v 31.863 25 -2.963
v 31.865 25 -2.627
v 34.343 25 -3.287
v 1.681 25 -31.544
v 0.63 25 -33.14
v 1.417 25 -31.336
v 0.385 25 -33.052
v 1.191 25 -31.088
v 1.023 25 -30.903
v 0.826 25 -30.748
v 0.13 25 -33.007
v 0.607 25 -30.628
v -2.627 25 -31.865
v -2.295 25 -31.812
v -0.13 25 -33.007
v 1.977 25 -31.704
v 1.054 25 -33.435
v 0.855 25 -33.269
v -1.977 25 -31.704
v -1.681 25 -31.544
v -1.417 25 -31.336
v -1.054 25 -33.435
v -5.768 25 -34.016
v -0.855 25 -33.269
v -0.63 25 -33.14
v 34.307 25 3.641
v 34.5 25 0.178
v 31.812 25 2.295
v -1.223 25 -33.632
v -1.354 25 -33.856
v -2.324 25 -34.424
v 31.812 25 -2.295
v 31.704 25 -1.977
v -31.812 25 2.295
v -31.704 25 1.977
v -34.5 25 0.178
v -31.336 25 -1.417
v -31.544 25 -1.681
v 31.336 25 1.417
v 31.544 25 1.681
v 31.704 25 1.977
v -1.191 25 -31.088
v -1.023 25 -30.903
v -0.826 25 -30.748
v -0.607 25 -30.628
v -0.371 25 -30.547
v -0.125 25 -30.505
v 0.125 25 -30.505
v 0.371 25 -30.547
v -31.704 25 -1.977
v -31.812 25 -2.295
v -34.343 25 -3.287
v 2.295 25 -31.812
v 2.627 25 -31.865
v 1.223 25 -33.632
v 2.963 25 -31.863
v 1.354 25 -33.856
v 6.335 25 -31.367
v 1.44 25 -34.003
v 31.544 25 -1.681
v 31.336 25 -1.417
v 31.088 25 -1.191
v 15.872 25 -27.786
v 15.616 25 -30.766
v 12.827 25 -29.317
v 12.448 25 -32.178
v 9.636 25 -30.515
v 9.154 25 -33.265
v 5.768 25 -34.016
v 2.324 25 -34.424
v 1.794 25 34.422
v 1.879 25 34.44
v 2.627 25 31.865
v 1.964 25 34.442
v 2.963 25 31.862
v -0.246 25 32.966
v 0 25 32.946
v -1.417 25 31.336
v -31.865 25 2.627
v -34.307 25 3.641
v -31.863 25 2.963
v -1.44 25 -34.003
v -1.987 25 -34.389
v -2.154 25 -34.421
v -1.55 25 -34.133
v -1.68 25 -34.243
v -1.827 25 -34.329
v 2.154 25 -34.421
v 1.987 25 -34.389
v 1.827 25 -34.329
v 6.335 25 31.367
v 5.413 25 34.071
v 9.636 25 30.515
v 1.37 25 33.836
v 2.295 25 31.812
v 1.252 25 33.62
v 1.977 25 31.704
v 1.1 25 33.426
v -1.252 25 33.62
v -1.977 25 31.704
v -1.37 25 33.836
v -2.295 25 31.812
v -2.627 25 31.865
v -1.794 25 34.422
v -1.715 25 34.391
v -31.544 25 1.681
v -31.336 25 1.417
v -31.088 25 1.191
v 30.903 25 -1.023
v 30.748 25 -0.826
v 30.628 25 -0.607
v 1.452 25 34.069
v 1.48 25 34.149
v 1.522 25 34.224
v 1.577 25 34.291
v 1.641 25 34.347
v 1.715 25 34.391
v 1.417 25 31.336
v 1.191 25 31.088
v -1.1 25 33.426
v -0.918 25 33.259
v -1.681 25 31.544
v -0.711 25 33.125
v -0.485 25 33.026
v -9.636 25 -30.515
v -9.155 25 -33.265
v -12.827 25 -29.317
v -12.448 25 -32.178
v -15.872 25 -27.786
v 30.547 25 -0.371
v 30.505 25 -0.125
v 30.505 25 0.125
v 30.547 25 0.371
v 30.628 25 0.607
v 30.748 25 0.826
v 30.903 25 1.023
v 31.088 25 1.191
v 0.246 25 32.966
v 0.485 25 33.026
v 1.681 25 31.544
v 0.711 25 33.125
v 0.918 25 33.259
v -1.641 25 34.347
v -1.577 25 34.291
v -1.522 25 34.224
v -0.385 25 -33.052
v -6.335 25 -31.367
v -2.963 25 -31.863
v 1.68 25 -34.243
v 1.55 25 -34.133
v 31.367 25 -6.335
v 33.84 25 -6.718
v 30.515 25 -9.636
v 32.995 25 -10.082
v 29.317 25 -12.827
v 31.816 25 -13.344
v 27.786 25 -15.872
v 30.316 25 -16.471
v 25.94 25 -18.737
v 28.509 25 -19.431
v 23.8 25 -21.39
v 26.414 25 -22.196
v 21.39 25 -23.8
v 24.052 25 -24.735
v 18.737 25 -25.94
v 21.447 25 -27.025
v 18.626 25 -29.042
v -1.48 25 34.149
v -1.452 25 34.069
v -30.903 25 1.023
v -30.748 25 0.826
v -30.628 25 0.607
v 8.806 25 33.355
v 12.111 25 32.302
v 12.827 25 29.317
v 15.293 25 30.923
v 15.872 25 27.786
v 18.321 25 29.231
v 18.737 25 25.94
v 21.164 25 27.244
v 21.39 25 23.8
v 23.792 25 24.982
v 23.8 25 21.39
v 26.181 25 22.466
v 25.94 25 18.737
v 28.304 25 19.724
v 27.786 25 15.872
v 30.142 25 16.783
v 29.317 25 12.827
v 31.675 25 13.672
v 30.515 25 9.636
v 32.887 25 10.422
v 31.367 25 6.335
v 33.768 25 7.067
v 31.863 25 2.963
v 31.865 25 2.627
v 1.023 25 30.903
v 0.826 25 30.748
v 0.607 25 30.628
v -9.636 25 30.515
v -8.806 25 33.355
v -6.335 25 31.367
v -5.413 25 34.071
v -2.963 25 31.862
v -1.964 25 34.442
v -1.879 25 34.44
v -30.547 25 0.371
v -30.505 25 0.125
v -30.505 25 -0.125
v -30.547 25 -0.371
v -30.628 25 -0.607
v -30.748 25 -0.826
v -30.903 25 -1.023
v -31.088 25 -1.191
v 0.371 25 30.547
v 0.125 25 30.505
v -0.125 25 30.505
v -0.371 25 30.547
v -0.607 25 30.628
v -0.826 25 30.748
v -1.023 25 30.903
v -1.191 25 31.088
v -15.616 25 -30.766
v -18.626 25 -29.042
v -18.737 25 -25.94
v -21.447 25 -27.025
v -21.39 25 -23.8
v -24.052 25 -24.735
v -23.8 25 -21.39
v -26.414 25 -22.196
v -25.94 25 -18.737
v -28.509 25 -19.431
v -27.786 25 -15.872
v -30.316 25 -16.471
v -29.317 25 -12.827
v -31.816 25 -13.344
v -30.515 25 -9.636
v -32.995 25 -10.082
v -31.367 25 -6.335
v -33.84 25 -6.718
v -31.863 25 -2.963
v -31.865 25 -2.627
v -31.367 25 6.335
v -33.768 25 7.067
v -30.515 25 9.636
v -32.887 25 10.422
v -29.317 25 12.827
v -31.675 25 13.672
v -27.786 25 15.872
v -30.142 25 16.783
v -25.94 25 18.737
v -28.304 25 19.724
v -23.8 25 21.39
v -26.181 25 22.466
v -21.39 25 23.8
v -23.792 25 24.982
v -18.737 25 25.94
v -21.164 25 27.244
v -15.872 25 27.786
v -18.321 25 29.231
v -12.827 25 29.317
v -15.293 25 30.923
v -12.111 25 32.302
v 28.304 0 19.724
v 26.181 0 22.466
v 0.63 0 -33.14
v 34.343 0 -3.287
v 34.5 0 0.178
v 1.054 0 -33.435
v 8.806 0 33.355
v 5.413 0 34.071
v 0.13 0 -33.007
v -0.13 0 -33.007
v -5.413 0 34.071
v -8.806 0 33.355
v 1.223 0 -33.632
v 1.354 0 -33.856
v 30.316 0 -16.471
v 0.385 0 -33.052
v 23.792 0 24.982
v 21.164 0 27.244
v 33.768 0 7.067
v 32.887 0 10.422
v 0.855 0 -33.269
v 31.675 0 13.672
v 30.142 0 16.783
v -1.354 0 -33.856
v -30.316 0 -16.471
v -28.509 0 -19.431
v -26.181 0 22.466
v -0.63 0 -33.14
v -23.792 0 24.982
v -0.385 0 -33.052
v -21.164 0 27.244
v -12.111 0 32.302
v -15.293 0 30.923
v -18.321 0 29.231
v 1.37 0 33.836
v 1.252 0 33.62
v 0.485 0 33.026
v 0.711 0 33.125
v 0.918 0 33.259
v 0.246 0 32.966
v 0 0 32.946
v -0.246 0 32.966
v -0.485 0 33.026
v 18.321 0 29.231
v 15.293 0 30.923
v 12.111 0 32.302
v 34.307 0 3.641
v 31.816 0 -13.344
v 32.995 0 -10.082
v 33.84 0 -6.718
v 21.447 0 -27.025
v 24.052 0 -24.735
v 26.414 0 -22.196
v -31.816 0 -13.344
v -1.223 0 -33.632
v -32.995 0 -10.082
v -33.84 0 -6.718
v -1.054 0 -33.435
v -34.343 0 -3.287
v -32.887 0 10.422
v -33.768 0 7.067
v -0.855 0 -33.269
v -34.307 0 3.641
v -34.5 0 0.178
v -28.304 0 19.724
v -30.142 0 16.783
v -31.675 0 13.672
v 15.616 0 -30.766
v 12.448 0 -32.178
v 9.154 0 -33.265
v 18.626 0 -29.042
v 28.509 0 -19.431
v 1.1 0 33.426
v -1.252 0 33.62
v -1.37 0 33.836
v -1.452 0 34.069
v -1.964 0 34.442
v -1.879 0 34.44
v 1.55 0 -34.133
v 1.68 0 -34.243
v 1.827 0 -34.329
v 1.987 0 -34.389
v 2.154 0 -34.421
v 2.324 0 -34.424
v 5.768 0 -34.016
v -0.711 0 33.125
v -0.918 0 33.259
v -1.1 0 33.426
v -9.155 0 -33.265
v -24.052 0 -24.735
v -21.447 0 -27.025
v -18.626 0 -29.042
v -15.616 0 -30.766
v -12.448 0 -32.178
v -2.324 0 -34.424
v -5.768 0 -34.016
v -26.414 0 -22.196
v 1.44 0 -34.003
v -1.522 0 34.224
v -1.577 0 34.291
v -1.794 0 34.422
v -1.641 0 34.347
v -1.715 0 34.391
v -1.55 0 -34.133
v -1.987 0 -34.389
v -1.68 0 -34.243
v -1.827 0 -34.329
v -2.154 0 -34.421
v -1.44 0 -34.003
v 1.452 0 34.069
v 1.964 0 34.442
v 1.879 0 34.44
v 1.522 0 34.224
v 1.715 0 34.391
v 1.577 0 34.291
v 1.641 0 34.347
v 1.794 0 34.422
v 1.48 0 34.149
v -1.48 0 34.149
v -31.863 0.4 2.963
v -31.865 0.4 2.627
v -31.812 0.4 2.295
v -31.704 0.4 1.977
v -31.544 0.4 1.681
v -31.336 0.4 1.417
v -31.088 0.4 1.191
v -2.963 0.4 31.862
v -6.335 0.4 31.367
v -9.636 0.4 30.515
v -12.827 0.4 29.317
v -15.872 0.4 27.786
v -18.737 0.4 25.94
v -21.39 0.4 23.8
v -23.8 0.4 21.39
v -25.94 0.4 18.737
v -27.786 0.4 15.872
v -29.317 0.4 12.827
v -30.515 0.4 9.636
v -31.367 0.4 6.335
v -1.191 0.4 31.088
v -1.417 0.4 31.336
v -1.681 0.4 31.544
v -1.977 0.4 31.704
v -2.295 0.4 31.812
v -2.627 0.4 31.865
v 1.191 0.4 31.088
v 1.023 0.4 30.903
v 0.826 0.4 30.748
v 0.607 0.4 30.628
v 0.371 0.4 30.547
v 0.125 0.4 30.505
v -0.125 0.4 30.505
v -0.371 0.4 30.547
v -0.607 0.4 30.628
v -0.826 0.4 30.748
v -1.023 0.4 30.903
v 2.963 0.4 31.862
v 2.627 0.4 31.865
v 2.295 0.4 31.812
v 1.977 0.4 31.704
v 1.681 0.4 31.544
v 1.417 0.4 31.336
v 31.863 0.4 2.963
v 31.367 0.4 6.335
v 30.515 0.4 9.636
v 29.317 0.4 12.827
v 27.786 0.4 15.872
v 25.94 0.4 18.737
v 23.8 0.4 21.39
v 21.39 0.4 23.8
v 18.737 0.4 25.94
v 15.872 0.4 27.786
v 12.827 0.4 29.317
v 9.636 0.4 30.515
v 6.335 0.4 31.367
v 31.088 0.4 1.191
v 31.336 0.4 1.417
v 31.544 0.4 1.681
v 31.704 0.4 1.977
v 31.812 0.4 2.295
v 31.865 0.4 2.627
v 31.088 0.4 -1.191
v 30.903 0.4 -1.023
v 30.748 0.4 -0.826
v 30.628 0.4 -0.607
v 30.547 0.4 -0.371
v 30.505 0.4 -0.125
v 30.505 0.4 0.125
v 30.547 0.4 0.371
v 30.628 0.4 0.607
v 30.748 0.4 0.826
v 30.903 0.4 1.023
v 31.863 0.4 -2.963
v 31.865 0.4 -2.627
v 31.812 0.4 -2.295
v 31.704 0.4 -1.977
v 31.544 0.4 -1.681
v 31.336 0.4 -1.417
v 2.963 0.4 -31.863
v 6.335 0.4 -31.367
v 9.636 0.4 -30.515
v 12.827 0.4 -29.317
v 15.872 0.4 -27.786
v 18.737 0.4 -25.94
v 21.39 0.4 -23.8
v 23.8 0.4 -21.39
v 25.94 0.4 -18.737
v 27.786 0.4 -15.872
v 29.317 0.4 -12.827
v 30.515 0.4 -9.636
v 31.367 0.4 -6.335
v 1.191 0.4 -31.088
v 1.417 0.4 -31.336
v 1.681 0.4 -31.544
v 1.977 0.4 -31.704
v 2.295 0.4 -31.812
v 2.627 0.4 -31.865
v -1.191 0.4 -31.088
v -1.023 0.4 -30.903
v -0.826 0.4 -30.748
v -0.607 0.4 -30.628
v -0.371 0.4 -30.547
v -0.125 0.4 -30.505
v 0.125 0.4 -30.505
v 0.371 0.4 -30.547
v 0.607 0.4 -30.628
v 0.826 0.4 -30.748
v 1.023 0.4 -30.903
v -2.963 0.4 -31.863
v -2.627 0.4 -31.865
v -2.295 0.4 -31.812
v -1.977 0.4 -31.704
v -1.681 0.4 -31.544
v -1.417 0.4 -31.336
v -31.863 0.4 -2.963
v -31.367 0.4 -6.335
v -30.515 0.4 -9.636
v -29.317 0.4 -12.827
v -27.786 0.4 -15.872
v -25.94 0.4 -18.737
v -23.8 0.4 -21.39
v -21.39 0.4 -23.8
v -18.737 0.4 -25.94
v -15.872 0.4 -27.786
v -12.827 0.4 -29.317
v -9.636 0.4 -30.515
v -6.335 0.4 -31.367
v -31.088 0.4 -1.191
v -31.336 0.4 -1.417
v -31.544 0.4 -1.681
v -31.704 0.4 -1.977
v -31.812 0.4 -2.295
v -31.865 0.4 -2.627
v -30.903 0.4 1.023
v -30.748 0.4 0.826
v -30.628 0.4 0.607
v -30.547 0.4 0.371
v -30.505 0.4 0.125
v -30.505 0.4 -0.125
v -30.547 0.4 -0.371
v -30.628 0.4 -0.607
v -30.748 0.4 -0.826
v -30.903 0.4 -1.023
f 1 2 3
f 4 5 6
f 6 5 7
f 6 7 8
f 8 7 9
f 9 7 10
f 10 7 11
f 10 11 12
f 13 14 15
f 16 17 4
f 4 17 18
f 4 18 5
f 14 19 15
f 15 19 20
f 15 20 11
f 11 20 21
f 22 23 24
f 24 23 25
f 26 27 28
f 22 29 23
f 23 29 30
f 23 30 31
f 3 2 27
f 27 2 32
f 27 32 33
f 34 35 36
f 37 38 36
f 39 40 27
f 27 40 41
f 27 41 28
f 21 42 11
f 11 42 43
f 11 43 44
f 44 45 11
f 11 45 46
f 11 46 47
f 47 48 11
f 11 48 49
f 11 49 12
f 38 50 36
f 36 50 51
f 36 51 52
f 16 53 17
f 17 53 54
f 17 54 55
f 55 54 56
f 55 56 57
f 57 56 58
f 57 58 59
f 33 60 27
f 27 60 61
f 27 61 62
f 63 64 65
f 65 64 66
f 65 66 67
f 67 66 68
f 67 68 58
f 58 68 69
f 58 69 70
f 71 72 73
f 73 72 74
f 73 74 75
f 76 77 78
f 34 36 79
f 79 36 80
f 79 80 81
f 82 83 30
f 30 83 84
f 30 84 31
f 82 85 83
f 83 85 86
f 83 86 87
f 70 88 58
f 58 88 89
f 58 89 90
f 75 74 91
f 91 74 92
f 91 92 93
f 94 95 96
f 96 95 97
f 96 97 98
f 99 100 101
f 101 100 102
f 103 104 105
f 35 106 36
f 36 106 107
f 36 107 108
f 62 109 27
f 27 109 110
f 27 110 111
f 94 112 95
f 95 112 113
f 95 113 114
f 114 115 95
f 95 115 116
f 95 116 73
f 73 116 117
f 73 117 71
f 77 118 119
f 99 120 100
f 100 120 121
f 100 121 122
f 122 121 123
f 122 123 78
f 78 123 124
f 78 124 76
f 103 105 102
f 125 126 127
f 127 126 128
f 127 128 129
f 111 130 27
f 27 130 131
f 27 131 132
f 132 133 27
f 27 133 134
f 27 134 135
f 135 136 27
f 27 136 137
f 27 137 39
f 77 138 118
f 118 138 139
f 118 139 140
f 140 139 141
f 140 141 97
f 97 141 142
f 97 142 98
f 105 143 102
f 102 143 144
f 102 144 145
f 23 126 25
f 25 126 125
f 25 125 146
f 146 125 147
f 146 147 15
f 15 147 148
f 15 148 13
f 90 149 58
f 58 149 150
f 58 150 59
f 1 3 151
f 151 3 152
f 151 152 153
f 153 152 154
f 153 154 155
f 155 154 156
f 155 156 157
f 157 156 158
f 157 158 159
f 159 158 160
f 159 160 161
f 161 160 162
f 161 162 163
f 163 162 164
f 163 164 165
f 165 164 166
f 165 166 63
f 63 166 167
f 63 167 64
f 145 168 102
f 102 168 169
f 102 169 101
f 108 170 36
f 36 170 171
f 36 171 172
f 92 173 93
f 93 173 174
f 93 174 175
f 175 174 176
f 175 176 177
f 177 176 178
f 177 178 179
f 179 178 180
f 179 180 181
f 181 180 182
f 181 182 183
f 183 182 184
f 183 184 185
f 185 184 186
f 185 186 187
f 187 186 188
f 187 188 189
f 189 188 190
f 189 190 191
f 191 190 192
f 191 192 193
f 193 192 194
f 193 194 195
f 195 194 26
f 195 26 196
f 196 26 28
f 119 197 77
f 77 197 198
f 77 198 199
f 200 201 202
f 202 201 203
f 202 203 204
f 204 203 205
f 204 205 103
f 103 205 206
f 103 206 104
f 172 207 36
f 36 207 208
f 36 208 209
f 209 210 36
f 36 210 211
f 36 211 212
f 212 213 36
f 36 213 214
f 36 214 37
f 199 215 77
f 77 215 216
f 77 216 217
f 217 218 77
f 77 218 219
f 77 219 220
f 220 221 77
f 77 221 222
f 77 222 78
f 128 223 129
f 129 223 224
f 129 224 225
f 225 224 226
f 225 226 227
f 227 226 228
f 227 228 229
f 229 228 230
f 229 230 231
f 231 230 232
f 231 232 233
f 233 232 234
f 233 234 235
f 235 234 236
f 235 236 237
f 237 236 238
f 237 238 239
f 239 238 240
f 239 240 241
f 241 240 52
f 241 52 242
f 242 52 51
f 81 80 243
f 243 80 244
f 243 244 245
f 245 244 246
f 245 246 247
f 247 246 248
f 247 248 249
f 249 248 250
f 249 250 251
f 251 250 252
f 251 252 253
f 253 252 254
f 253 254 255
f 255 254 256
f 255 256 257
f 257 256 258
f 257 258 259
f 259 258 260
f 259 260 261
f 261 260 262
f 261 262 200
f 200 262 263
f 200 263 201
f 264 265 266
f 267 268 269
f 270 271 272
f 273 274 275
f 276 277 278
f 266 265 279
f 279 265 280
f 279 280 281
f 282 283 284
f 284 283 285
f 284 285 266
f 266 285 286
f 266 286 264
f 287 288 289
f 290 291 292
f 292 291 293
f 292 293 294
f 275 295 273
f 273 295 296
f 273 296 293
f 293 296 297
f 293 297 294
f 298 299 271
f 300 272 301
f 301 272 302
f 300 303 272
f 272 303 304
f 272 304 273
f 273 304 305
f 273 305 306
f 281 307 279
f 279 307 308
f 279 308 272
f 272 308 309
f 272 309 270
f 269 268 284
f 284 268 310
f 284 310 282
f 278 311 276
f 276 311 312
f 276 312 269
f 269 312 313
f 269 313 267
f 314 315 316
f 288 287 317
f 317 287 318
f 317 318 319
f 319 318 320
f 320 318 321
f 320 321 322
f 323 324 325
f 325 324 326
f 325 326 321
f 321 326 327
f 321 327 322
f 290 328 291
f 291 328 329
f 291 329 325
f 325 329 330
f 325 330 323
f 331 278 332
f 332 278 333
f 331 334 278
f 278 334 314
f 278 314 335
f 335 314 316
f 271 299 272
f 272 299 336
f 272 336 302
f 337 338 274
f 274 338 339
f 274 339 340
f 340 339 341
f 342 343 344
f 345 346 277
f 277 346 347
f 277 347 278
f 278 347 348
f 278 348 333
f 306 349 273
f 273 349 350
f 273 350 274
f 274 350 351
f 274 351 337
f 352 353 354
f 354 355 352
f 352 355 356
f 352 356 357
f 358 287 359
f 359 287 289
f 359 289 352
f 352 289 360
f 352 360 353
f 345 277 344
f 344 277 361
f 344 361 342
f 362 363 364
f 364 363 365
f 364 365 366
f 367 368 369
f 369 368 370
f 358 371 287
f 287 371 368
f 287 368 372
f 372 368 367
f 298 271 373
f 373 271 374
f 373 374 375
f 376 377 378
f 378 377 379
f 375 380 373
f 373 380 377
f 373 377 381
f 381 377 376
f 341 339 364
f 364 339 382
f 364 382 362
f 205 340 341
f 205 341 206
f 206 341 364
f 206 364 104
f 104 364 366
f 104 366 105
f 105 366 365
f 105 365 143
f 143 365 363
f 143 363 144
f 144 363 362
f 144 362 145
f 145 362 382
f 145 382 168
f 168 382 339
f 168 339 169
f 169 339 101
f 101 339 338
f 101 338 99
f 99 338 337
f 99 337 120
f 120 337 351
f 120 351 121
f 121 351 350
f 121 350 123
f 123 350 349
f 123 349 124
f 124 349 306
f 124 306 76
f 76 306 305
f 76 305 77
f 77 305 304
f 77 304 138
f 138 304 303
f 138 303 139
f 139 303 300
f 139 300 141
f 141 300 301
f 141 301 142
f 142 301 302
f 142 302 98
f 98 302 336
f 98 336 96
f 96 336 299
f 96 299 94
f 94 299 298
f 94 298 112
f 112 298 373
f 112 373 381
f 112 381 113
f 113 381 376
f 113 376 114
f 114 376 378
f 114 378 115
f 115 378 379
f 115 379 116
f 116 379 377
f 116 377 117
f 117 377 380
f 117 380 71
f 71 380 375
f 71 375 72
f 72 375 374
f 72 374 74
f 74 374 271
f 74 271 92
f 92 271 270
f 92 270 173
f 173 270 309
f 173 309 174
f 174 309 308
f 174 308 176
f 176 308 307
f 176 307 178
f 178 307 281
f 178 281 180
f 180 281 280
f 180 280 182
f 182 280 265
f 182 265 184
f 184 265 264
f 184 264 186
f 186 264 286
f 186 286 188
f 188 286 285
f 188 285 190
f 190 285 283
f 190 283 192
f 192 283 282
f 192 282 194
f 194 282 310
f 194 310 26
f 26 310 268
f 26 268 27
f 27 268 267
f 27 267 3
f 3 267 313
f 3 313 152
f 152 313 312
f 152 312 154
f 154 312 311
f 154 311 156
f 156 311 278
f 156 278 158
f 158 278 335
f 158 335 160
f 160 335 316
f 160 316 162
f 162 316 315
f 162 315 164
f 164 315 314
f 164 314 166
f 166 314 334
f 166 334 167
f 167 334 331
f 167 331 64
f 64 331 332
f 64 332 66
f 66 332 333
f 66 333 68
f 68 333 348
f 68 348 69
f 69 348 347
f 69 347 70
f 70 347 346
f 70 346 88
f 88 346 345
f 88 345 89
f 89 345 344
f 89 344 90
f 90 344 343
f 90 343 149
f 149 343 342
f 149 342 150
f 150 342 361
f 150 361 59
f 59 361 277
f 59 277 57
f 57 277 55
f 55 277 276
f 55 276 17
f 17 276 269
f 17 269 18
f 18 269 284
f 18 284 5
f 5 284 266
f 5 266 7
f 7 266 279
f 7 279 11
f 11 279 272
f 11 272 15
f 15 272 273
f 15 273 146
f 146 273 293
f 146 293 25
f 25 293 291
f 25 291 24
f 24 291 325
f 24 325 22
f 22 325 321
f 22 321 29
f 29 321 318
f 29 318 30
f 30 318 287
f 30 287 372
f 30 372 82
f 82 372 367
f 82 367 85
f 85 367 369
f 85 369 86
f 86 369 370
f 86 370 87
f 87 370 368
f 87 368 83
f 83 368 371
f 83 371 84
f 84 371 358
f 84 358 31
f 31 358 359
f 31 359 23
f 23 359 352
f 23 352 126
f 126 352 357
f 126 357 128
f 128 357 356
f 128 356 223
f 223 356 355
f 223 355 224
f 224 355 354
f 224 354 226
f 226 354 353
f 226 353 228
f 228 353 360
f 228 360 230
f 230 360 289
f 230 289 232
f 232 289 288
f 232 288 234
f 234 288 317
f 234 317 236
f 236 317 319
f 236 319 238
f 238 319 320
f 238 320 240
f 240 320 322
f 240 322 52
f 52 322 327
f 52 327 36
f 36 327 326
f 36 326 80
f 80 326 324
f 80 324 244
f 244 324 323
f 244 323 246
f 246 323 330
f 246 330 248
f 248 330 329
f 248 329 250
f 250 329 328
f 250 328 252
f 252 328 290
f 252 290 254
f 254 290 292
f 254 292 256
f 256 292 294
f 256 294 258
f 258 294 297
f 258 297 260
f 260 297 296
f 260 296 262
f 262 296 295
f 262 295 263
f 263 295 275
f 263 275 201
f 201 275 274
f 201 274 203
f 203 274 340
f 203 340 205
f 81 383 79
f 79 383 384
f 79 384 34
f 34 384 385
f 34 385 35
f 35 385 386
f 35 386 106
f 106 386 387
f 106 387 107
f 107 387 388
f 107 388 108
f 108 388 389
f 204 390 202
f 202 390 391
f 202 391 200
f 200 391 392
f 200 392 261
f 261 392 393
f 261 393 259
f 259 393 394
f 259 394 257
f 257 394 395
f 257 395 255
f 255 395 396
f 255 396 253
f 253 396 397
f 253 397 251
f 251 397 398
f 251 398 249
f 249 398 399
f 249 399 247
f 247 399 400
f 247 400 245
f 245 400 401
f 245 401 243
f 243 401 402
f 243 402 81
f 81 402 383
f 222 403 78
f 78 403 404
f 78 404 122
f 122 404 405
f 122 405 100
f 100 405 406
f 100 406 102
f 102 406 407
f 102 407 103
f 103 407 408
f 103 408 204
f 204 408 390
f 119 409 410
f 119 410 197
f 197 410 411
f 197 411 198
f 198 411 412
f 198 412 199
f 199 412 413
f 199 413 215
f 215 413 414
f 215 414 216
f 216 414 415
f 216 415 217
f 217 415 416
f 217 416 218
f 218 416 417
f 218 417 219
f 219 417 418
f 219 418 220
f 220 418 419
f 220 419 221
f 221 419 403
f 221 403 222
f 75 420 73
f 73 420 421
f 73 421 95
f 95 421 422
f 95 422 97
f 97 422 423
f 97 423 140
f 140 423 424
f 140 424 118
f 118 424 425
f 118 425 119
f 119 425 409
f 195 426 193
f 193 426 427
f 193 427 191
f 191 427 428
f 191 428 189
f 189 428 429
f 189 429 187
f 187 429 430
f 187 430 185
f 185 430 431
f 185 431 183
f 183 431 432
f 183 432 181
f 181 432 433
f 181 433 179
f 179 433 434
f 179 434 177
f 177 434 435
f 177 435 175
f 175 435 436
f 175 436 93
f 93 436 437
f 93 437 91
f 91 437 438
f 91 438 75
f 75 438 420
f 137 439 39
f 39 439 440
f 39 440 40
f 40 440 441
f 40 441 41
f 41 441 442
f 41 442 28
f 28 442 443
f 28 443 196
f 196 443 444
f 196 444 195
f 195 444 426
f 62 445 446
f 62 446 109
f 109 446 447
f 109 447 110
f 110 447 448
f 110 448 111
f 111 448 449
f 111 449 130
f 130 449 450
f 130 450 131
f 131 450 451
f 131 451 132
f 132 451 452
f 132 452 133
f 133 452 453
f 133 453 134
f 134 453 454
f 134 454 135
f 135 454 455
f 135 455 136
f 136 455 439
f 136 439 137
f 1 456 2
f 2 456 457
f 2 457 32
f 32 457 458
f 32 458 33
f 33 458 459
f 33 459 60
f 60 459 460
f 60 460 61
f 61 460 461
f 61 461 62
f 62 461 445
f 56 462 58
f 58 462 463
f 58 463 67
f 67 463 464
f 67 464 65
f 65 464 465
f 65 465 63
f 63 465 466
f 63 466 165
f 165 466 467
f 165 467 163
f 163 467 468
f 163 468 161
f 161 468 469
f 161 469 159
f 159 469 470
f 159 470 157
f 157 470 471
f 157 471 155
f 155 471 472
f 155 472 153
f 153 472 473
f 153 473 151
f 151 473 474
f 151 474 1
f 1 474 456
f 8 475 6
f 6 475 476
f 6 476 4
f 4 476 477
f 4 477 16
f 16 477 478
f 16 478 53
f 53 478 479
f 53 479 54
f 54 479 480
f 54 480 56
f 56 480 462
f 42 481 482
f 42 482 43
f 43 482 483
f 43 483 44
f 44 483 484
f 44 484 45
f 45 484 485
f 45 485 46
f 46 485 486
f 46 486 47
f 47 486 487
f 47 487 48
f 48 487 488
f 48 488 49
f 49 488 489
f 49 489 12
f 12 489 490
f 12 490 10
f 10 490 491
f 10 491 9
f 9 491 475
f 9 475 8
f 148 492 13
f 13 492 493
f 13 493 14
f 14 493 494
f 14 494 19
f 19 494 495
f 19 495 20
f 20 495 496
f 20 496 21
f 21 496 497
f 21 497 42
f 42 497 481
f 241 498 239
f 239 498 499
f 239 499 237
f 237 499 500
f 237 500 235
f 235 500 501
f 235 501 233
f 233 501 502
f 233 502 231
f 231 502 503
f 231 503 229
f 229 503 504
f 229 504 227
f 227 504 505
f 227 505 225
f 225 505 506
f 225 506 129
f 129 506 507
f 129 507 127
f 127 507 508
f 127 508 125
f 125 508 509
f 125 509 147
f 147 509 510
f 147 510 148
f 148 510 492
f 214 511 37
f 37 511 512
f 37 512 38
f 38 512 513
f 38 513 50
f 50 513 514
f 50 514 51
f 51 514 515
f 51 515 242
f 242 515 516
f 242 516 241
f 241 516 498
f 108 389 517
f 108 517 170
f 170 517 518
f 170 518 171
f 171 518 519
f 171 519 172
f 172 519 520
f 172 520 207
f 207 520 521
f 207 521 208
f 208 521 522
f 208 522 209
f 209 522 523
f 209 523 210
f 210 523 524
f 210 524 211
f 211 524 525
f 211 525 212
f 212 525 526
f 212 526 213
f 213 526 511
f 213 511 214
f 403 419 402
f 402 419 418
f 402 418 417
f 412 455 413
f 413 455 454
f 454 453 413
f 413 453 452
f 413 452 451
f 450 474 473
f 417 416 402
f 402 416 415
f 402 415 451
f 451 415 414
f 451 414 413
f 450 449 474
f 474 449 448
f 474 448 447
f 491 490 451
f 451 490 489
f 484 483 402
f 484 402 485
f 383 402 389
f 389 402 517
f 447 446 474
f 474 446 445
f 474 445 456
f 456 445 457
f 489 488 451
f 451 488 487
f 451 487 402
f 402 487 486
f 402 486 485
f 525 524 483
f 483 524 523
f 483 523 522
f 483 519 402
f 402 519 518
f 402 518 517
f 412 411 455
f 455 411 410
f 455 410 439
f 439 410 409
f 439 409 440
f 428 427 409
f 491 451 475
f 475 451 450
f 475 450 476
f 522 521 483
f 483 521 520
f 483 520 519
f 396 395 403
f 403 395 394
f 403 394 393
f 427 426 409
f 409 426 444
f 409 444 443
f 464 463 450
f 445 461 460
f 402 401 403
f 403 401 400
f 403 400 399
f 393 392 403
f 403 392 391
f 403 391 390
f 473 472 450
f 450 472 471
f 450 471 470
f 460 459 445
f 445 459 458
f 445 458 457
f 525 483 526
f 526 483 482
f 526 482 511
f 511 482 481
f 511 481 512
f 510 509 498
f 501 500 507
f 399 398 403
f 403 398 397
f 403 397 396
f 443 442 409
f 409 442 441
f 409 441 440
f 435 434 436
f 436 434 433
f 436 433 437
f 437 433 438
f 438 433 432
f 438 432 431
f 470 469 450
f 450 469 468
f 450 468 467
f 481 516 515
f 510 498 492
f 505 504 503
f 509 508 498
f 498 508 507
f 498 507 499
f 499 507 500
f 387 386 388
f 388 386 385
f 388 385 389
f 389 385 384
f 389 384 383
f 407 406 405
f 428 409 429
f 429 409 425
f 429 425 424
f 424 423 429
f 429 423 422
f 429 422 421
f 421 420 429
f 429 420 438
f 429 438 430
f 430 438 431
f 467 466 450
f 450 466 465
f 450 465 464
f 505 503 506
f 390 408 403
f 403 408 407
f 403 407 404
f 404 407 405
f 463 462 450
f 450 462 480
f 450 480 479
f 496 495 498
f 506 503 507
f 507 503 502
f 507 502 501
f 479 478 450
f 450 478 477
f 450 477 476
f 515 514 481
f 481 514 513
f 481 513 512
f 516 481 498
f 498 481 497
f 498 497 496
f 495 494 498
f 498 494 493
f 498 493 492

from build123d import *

# Parameters (mm, degrees)
BOSS_EXTRUDE1_DEPTH = 25
CUT_EXTRUDE2_DEPTH  = 55.786493398
BOSS_EXTRUDE2_DEPTH = 0.4


with BuildPart() as part:
    # Sketch1 → Boss-Extrude1 (new body)
    with BuildSketch(Plane(origin=(0, 0, 0), x_dir=(1, 0, 0), z_dir=(0, 1, 0))):
        with BuildLine():
            ThreePointArc((1.451818925, -34.068556857), (1.641248992, -34.346908706), (1.964225605, -34.442038138))
            ThreePointArc((1.964225605, -34.442038138), (26.591847487, -21.978073076), (34.198225299, 4.555174015))
            ThreePointArc((34.198225299, 4.555174015), (23.590291339, 25.176355888), (2.324135821, 34.423627607))
            ThreePointArc((2.324135821, 34.423627607), (1.751838249, 34.289058819), (1.354061739, 33.856153382))
            ThreePointArc((1.354061739, 33.856153382), (0, 33.001534515), (-1.354061739, 33.856153382))
            ThreePointArc((-1.354061739, 33.856153382), (-1.751838249, 34.289058819), (-2.324135821, 34.423627607))
            ThreePointArc((-2.324135821, 34.423627607), (-23.590291339, 25.176355888), (-34.198225299, 4.555174015))
            ThreePointArc((-34.198225299, 4.555174015), (-26.591847487, -21.978073076), (-1.964225605, -34.442038138))
            ThreePointArc((-1.964225605, -34.442038138), (-1.641248992, -34.346908706), (-1.451818925, -34.068556857))
            ThreePointArc((-1.451818925, -34.068556857), (0, -32.945679925), (1.451818925, -34.068556857))
        make_face()
        with BuildLine():
            Line((-2.417, 3.787737139), (0, 3.787737139))
            Line((0, 3.787737139), (2.417, 3.787737139))
            ThreePointArc((2.417, 3.787737139), (0, -4.489512172), (-2.417, 3.787737139))
        make_face(mode=Mode.SUBTRACT)
    extrude(amount=BOSS_EXTRUDE1_DEPTH)

    # Sketch2 → Cut-Extrude2 (cut, through all)
    with BuildSketch(Plane(origin=(0, 0, 0), x_dir=(1, 0, 0), z_dir=(0, 1, 0))):
        with BuildLine():
            ThreePointArc((-31.8625, -2.963291034), (-22.627416998, -22.627416998), (-2.963291034, -31.8625))
            ThreePointArc((-2.963291034, -31.8625), (-1.977020771, -31.703659042), (-1.190608005, -31.087611607))
            ThreePointArc((-1.190608005, -31.087611607), (0, -30.5), (1.190608005, -31.087611607))
            ThreePointArc((1.190608005, -31.087611607), (1.977020771, -31.703659042), (2.963291034, -31.8625))
            ThreePointArc((2.963291034, -31.8625), (22.627416998, -22.627416998), (31.8625, -2.963291034))
            ThreePointArc((31.8625, -2.963291034), (31.703659042, -1.977020771), (31.087611607, -1.190608005))
            ThreePointArc((31.087611607, -1.190608005), (30.5, 0), (31.087611607, 1.190608005))
            ThreePointArc((31.087611607, 1.190608005), (31.703659042, 1.977020771), (31.8625, 2.963291034))
            ThreePointArc((31.8625, 2.963291034), (22.627416998, 22.627416998), (2.963291034, 31.8625))
            ThreePointArc((2.963291034, 31.8625), (1.977020771, 31.703659042), (1.190608005, 31.087611607))
            ThreePointArc((1.190608005, 31.087611607), (0, 30.5), (-1.190608005, 31.087611607))
            ThreePointArc((-1.190608005, 31.087611607), (-1.977020771, 31.703659042), (-2.963291034, 31.8625))
            ThreePointArc((-2.963291034, 31.8625), (-22.627416998, 22.627416998), (-31.8625, 2.963291034))
            ThreePointArc((-31.8625, 2.963291034), (-31.703659042, 1.977020771), (-31.087611607, 1.190608005))
            ThreePointArc((-31.087611607, 1.190608005), (-30.5, 0), (-31.087611607, -1.190608005))
            ThreePointArc((-31.087611607, -1.190608005), (-31.703659042, -1.977020771), (-31.8625, -2.963291034))
        make_face()
    extrude(amount=CUT_EXTRUDE2_DEPTH, mode=Mode.SUBTRACT)

    # Sketch2<2> → Boss-Extrude2 (add)
    with BuildSketch(Plane(origin=(0, 0, 0), x_dir=(1, 0, 0), z_dir=(0, 1, 0))):
        with BuildLine():
            ThreePointArc((-31.8625, -2.963291034), (-22.627416998, -22.627416998), (-2.963291034, -31.8625))
            ThreePointArc((-2.963291034, -31.8625), (-1.977020771, -31.703659042), (-1.190608005, -31.087611607))
            ThreePointArc((-1.190608005, -31.087611607), (0, -30.5), (1.190608005, -31.087611607))
            ThreePointArc((1.190608005, -31.087611607), (1.977020771, -31.703659042), (2.963291034, -31.8625))
            ThreePointArc((2.963291034, -31.8625), (22.627416998, -22.627416998), (31.8625, -2.963291034))
            ThreePointArc((31.8625, -2.963291034), (31.703659042, -1.977020771), (31.087611607, -1.190608005))
            ThreePointArc((31.087611607, -1.190608005), (30.5, 0), (31.087611607, 1.190608005))
            ThreePointArc((31.087611607, 1.190608005), (31.703659042, 1.977020771), (31.8625, 2.963291034))
            ThreePointArc((31.8625, 2.963291034), (22.627416998, 22.627416998), (2.963291034, 31.8625))
            ThreePointArc((2.963291034, 31.8625), (1.977020771, 31.703659042), (1.190608005, 31.087611607))
            ThreePointArc((1.190608005, 31.087611607), (0, 30.5), (-1.190608005, 31.087611607))
            ThreePointArc((-1.190608005, 31.087611607), (-1.977020771, 31.703659042), (-2.963291034, 31.8625))
            ThreePointArc((-2.963291034, 31.8625), (-22.627416998, 22.627416998), (-31.8625, 2.963291034))
            ThreePointArc((-31.8625, 2.963291034), (-31.703659042, 1.977020771), (-31.087611607, 1.190608005))
            ThreePointArc((-31.087611607, 1.190608005), (-30.5, 0), (-31.087611607, -1.190608005))
            ThreePointArc((-31.087611607, -1.190608005), (-31.703659042, -1.977020771), (-31.8625, -2.963291034))
        make_face()
    extrude(amount=BOSS_EXTRUDE2_DEPTH)


solid = part.part
